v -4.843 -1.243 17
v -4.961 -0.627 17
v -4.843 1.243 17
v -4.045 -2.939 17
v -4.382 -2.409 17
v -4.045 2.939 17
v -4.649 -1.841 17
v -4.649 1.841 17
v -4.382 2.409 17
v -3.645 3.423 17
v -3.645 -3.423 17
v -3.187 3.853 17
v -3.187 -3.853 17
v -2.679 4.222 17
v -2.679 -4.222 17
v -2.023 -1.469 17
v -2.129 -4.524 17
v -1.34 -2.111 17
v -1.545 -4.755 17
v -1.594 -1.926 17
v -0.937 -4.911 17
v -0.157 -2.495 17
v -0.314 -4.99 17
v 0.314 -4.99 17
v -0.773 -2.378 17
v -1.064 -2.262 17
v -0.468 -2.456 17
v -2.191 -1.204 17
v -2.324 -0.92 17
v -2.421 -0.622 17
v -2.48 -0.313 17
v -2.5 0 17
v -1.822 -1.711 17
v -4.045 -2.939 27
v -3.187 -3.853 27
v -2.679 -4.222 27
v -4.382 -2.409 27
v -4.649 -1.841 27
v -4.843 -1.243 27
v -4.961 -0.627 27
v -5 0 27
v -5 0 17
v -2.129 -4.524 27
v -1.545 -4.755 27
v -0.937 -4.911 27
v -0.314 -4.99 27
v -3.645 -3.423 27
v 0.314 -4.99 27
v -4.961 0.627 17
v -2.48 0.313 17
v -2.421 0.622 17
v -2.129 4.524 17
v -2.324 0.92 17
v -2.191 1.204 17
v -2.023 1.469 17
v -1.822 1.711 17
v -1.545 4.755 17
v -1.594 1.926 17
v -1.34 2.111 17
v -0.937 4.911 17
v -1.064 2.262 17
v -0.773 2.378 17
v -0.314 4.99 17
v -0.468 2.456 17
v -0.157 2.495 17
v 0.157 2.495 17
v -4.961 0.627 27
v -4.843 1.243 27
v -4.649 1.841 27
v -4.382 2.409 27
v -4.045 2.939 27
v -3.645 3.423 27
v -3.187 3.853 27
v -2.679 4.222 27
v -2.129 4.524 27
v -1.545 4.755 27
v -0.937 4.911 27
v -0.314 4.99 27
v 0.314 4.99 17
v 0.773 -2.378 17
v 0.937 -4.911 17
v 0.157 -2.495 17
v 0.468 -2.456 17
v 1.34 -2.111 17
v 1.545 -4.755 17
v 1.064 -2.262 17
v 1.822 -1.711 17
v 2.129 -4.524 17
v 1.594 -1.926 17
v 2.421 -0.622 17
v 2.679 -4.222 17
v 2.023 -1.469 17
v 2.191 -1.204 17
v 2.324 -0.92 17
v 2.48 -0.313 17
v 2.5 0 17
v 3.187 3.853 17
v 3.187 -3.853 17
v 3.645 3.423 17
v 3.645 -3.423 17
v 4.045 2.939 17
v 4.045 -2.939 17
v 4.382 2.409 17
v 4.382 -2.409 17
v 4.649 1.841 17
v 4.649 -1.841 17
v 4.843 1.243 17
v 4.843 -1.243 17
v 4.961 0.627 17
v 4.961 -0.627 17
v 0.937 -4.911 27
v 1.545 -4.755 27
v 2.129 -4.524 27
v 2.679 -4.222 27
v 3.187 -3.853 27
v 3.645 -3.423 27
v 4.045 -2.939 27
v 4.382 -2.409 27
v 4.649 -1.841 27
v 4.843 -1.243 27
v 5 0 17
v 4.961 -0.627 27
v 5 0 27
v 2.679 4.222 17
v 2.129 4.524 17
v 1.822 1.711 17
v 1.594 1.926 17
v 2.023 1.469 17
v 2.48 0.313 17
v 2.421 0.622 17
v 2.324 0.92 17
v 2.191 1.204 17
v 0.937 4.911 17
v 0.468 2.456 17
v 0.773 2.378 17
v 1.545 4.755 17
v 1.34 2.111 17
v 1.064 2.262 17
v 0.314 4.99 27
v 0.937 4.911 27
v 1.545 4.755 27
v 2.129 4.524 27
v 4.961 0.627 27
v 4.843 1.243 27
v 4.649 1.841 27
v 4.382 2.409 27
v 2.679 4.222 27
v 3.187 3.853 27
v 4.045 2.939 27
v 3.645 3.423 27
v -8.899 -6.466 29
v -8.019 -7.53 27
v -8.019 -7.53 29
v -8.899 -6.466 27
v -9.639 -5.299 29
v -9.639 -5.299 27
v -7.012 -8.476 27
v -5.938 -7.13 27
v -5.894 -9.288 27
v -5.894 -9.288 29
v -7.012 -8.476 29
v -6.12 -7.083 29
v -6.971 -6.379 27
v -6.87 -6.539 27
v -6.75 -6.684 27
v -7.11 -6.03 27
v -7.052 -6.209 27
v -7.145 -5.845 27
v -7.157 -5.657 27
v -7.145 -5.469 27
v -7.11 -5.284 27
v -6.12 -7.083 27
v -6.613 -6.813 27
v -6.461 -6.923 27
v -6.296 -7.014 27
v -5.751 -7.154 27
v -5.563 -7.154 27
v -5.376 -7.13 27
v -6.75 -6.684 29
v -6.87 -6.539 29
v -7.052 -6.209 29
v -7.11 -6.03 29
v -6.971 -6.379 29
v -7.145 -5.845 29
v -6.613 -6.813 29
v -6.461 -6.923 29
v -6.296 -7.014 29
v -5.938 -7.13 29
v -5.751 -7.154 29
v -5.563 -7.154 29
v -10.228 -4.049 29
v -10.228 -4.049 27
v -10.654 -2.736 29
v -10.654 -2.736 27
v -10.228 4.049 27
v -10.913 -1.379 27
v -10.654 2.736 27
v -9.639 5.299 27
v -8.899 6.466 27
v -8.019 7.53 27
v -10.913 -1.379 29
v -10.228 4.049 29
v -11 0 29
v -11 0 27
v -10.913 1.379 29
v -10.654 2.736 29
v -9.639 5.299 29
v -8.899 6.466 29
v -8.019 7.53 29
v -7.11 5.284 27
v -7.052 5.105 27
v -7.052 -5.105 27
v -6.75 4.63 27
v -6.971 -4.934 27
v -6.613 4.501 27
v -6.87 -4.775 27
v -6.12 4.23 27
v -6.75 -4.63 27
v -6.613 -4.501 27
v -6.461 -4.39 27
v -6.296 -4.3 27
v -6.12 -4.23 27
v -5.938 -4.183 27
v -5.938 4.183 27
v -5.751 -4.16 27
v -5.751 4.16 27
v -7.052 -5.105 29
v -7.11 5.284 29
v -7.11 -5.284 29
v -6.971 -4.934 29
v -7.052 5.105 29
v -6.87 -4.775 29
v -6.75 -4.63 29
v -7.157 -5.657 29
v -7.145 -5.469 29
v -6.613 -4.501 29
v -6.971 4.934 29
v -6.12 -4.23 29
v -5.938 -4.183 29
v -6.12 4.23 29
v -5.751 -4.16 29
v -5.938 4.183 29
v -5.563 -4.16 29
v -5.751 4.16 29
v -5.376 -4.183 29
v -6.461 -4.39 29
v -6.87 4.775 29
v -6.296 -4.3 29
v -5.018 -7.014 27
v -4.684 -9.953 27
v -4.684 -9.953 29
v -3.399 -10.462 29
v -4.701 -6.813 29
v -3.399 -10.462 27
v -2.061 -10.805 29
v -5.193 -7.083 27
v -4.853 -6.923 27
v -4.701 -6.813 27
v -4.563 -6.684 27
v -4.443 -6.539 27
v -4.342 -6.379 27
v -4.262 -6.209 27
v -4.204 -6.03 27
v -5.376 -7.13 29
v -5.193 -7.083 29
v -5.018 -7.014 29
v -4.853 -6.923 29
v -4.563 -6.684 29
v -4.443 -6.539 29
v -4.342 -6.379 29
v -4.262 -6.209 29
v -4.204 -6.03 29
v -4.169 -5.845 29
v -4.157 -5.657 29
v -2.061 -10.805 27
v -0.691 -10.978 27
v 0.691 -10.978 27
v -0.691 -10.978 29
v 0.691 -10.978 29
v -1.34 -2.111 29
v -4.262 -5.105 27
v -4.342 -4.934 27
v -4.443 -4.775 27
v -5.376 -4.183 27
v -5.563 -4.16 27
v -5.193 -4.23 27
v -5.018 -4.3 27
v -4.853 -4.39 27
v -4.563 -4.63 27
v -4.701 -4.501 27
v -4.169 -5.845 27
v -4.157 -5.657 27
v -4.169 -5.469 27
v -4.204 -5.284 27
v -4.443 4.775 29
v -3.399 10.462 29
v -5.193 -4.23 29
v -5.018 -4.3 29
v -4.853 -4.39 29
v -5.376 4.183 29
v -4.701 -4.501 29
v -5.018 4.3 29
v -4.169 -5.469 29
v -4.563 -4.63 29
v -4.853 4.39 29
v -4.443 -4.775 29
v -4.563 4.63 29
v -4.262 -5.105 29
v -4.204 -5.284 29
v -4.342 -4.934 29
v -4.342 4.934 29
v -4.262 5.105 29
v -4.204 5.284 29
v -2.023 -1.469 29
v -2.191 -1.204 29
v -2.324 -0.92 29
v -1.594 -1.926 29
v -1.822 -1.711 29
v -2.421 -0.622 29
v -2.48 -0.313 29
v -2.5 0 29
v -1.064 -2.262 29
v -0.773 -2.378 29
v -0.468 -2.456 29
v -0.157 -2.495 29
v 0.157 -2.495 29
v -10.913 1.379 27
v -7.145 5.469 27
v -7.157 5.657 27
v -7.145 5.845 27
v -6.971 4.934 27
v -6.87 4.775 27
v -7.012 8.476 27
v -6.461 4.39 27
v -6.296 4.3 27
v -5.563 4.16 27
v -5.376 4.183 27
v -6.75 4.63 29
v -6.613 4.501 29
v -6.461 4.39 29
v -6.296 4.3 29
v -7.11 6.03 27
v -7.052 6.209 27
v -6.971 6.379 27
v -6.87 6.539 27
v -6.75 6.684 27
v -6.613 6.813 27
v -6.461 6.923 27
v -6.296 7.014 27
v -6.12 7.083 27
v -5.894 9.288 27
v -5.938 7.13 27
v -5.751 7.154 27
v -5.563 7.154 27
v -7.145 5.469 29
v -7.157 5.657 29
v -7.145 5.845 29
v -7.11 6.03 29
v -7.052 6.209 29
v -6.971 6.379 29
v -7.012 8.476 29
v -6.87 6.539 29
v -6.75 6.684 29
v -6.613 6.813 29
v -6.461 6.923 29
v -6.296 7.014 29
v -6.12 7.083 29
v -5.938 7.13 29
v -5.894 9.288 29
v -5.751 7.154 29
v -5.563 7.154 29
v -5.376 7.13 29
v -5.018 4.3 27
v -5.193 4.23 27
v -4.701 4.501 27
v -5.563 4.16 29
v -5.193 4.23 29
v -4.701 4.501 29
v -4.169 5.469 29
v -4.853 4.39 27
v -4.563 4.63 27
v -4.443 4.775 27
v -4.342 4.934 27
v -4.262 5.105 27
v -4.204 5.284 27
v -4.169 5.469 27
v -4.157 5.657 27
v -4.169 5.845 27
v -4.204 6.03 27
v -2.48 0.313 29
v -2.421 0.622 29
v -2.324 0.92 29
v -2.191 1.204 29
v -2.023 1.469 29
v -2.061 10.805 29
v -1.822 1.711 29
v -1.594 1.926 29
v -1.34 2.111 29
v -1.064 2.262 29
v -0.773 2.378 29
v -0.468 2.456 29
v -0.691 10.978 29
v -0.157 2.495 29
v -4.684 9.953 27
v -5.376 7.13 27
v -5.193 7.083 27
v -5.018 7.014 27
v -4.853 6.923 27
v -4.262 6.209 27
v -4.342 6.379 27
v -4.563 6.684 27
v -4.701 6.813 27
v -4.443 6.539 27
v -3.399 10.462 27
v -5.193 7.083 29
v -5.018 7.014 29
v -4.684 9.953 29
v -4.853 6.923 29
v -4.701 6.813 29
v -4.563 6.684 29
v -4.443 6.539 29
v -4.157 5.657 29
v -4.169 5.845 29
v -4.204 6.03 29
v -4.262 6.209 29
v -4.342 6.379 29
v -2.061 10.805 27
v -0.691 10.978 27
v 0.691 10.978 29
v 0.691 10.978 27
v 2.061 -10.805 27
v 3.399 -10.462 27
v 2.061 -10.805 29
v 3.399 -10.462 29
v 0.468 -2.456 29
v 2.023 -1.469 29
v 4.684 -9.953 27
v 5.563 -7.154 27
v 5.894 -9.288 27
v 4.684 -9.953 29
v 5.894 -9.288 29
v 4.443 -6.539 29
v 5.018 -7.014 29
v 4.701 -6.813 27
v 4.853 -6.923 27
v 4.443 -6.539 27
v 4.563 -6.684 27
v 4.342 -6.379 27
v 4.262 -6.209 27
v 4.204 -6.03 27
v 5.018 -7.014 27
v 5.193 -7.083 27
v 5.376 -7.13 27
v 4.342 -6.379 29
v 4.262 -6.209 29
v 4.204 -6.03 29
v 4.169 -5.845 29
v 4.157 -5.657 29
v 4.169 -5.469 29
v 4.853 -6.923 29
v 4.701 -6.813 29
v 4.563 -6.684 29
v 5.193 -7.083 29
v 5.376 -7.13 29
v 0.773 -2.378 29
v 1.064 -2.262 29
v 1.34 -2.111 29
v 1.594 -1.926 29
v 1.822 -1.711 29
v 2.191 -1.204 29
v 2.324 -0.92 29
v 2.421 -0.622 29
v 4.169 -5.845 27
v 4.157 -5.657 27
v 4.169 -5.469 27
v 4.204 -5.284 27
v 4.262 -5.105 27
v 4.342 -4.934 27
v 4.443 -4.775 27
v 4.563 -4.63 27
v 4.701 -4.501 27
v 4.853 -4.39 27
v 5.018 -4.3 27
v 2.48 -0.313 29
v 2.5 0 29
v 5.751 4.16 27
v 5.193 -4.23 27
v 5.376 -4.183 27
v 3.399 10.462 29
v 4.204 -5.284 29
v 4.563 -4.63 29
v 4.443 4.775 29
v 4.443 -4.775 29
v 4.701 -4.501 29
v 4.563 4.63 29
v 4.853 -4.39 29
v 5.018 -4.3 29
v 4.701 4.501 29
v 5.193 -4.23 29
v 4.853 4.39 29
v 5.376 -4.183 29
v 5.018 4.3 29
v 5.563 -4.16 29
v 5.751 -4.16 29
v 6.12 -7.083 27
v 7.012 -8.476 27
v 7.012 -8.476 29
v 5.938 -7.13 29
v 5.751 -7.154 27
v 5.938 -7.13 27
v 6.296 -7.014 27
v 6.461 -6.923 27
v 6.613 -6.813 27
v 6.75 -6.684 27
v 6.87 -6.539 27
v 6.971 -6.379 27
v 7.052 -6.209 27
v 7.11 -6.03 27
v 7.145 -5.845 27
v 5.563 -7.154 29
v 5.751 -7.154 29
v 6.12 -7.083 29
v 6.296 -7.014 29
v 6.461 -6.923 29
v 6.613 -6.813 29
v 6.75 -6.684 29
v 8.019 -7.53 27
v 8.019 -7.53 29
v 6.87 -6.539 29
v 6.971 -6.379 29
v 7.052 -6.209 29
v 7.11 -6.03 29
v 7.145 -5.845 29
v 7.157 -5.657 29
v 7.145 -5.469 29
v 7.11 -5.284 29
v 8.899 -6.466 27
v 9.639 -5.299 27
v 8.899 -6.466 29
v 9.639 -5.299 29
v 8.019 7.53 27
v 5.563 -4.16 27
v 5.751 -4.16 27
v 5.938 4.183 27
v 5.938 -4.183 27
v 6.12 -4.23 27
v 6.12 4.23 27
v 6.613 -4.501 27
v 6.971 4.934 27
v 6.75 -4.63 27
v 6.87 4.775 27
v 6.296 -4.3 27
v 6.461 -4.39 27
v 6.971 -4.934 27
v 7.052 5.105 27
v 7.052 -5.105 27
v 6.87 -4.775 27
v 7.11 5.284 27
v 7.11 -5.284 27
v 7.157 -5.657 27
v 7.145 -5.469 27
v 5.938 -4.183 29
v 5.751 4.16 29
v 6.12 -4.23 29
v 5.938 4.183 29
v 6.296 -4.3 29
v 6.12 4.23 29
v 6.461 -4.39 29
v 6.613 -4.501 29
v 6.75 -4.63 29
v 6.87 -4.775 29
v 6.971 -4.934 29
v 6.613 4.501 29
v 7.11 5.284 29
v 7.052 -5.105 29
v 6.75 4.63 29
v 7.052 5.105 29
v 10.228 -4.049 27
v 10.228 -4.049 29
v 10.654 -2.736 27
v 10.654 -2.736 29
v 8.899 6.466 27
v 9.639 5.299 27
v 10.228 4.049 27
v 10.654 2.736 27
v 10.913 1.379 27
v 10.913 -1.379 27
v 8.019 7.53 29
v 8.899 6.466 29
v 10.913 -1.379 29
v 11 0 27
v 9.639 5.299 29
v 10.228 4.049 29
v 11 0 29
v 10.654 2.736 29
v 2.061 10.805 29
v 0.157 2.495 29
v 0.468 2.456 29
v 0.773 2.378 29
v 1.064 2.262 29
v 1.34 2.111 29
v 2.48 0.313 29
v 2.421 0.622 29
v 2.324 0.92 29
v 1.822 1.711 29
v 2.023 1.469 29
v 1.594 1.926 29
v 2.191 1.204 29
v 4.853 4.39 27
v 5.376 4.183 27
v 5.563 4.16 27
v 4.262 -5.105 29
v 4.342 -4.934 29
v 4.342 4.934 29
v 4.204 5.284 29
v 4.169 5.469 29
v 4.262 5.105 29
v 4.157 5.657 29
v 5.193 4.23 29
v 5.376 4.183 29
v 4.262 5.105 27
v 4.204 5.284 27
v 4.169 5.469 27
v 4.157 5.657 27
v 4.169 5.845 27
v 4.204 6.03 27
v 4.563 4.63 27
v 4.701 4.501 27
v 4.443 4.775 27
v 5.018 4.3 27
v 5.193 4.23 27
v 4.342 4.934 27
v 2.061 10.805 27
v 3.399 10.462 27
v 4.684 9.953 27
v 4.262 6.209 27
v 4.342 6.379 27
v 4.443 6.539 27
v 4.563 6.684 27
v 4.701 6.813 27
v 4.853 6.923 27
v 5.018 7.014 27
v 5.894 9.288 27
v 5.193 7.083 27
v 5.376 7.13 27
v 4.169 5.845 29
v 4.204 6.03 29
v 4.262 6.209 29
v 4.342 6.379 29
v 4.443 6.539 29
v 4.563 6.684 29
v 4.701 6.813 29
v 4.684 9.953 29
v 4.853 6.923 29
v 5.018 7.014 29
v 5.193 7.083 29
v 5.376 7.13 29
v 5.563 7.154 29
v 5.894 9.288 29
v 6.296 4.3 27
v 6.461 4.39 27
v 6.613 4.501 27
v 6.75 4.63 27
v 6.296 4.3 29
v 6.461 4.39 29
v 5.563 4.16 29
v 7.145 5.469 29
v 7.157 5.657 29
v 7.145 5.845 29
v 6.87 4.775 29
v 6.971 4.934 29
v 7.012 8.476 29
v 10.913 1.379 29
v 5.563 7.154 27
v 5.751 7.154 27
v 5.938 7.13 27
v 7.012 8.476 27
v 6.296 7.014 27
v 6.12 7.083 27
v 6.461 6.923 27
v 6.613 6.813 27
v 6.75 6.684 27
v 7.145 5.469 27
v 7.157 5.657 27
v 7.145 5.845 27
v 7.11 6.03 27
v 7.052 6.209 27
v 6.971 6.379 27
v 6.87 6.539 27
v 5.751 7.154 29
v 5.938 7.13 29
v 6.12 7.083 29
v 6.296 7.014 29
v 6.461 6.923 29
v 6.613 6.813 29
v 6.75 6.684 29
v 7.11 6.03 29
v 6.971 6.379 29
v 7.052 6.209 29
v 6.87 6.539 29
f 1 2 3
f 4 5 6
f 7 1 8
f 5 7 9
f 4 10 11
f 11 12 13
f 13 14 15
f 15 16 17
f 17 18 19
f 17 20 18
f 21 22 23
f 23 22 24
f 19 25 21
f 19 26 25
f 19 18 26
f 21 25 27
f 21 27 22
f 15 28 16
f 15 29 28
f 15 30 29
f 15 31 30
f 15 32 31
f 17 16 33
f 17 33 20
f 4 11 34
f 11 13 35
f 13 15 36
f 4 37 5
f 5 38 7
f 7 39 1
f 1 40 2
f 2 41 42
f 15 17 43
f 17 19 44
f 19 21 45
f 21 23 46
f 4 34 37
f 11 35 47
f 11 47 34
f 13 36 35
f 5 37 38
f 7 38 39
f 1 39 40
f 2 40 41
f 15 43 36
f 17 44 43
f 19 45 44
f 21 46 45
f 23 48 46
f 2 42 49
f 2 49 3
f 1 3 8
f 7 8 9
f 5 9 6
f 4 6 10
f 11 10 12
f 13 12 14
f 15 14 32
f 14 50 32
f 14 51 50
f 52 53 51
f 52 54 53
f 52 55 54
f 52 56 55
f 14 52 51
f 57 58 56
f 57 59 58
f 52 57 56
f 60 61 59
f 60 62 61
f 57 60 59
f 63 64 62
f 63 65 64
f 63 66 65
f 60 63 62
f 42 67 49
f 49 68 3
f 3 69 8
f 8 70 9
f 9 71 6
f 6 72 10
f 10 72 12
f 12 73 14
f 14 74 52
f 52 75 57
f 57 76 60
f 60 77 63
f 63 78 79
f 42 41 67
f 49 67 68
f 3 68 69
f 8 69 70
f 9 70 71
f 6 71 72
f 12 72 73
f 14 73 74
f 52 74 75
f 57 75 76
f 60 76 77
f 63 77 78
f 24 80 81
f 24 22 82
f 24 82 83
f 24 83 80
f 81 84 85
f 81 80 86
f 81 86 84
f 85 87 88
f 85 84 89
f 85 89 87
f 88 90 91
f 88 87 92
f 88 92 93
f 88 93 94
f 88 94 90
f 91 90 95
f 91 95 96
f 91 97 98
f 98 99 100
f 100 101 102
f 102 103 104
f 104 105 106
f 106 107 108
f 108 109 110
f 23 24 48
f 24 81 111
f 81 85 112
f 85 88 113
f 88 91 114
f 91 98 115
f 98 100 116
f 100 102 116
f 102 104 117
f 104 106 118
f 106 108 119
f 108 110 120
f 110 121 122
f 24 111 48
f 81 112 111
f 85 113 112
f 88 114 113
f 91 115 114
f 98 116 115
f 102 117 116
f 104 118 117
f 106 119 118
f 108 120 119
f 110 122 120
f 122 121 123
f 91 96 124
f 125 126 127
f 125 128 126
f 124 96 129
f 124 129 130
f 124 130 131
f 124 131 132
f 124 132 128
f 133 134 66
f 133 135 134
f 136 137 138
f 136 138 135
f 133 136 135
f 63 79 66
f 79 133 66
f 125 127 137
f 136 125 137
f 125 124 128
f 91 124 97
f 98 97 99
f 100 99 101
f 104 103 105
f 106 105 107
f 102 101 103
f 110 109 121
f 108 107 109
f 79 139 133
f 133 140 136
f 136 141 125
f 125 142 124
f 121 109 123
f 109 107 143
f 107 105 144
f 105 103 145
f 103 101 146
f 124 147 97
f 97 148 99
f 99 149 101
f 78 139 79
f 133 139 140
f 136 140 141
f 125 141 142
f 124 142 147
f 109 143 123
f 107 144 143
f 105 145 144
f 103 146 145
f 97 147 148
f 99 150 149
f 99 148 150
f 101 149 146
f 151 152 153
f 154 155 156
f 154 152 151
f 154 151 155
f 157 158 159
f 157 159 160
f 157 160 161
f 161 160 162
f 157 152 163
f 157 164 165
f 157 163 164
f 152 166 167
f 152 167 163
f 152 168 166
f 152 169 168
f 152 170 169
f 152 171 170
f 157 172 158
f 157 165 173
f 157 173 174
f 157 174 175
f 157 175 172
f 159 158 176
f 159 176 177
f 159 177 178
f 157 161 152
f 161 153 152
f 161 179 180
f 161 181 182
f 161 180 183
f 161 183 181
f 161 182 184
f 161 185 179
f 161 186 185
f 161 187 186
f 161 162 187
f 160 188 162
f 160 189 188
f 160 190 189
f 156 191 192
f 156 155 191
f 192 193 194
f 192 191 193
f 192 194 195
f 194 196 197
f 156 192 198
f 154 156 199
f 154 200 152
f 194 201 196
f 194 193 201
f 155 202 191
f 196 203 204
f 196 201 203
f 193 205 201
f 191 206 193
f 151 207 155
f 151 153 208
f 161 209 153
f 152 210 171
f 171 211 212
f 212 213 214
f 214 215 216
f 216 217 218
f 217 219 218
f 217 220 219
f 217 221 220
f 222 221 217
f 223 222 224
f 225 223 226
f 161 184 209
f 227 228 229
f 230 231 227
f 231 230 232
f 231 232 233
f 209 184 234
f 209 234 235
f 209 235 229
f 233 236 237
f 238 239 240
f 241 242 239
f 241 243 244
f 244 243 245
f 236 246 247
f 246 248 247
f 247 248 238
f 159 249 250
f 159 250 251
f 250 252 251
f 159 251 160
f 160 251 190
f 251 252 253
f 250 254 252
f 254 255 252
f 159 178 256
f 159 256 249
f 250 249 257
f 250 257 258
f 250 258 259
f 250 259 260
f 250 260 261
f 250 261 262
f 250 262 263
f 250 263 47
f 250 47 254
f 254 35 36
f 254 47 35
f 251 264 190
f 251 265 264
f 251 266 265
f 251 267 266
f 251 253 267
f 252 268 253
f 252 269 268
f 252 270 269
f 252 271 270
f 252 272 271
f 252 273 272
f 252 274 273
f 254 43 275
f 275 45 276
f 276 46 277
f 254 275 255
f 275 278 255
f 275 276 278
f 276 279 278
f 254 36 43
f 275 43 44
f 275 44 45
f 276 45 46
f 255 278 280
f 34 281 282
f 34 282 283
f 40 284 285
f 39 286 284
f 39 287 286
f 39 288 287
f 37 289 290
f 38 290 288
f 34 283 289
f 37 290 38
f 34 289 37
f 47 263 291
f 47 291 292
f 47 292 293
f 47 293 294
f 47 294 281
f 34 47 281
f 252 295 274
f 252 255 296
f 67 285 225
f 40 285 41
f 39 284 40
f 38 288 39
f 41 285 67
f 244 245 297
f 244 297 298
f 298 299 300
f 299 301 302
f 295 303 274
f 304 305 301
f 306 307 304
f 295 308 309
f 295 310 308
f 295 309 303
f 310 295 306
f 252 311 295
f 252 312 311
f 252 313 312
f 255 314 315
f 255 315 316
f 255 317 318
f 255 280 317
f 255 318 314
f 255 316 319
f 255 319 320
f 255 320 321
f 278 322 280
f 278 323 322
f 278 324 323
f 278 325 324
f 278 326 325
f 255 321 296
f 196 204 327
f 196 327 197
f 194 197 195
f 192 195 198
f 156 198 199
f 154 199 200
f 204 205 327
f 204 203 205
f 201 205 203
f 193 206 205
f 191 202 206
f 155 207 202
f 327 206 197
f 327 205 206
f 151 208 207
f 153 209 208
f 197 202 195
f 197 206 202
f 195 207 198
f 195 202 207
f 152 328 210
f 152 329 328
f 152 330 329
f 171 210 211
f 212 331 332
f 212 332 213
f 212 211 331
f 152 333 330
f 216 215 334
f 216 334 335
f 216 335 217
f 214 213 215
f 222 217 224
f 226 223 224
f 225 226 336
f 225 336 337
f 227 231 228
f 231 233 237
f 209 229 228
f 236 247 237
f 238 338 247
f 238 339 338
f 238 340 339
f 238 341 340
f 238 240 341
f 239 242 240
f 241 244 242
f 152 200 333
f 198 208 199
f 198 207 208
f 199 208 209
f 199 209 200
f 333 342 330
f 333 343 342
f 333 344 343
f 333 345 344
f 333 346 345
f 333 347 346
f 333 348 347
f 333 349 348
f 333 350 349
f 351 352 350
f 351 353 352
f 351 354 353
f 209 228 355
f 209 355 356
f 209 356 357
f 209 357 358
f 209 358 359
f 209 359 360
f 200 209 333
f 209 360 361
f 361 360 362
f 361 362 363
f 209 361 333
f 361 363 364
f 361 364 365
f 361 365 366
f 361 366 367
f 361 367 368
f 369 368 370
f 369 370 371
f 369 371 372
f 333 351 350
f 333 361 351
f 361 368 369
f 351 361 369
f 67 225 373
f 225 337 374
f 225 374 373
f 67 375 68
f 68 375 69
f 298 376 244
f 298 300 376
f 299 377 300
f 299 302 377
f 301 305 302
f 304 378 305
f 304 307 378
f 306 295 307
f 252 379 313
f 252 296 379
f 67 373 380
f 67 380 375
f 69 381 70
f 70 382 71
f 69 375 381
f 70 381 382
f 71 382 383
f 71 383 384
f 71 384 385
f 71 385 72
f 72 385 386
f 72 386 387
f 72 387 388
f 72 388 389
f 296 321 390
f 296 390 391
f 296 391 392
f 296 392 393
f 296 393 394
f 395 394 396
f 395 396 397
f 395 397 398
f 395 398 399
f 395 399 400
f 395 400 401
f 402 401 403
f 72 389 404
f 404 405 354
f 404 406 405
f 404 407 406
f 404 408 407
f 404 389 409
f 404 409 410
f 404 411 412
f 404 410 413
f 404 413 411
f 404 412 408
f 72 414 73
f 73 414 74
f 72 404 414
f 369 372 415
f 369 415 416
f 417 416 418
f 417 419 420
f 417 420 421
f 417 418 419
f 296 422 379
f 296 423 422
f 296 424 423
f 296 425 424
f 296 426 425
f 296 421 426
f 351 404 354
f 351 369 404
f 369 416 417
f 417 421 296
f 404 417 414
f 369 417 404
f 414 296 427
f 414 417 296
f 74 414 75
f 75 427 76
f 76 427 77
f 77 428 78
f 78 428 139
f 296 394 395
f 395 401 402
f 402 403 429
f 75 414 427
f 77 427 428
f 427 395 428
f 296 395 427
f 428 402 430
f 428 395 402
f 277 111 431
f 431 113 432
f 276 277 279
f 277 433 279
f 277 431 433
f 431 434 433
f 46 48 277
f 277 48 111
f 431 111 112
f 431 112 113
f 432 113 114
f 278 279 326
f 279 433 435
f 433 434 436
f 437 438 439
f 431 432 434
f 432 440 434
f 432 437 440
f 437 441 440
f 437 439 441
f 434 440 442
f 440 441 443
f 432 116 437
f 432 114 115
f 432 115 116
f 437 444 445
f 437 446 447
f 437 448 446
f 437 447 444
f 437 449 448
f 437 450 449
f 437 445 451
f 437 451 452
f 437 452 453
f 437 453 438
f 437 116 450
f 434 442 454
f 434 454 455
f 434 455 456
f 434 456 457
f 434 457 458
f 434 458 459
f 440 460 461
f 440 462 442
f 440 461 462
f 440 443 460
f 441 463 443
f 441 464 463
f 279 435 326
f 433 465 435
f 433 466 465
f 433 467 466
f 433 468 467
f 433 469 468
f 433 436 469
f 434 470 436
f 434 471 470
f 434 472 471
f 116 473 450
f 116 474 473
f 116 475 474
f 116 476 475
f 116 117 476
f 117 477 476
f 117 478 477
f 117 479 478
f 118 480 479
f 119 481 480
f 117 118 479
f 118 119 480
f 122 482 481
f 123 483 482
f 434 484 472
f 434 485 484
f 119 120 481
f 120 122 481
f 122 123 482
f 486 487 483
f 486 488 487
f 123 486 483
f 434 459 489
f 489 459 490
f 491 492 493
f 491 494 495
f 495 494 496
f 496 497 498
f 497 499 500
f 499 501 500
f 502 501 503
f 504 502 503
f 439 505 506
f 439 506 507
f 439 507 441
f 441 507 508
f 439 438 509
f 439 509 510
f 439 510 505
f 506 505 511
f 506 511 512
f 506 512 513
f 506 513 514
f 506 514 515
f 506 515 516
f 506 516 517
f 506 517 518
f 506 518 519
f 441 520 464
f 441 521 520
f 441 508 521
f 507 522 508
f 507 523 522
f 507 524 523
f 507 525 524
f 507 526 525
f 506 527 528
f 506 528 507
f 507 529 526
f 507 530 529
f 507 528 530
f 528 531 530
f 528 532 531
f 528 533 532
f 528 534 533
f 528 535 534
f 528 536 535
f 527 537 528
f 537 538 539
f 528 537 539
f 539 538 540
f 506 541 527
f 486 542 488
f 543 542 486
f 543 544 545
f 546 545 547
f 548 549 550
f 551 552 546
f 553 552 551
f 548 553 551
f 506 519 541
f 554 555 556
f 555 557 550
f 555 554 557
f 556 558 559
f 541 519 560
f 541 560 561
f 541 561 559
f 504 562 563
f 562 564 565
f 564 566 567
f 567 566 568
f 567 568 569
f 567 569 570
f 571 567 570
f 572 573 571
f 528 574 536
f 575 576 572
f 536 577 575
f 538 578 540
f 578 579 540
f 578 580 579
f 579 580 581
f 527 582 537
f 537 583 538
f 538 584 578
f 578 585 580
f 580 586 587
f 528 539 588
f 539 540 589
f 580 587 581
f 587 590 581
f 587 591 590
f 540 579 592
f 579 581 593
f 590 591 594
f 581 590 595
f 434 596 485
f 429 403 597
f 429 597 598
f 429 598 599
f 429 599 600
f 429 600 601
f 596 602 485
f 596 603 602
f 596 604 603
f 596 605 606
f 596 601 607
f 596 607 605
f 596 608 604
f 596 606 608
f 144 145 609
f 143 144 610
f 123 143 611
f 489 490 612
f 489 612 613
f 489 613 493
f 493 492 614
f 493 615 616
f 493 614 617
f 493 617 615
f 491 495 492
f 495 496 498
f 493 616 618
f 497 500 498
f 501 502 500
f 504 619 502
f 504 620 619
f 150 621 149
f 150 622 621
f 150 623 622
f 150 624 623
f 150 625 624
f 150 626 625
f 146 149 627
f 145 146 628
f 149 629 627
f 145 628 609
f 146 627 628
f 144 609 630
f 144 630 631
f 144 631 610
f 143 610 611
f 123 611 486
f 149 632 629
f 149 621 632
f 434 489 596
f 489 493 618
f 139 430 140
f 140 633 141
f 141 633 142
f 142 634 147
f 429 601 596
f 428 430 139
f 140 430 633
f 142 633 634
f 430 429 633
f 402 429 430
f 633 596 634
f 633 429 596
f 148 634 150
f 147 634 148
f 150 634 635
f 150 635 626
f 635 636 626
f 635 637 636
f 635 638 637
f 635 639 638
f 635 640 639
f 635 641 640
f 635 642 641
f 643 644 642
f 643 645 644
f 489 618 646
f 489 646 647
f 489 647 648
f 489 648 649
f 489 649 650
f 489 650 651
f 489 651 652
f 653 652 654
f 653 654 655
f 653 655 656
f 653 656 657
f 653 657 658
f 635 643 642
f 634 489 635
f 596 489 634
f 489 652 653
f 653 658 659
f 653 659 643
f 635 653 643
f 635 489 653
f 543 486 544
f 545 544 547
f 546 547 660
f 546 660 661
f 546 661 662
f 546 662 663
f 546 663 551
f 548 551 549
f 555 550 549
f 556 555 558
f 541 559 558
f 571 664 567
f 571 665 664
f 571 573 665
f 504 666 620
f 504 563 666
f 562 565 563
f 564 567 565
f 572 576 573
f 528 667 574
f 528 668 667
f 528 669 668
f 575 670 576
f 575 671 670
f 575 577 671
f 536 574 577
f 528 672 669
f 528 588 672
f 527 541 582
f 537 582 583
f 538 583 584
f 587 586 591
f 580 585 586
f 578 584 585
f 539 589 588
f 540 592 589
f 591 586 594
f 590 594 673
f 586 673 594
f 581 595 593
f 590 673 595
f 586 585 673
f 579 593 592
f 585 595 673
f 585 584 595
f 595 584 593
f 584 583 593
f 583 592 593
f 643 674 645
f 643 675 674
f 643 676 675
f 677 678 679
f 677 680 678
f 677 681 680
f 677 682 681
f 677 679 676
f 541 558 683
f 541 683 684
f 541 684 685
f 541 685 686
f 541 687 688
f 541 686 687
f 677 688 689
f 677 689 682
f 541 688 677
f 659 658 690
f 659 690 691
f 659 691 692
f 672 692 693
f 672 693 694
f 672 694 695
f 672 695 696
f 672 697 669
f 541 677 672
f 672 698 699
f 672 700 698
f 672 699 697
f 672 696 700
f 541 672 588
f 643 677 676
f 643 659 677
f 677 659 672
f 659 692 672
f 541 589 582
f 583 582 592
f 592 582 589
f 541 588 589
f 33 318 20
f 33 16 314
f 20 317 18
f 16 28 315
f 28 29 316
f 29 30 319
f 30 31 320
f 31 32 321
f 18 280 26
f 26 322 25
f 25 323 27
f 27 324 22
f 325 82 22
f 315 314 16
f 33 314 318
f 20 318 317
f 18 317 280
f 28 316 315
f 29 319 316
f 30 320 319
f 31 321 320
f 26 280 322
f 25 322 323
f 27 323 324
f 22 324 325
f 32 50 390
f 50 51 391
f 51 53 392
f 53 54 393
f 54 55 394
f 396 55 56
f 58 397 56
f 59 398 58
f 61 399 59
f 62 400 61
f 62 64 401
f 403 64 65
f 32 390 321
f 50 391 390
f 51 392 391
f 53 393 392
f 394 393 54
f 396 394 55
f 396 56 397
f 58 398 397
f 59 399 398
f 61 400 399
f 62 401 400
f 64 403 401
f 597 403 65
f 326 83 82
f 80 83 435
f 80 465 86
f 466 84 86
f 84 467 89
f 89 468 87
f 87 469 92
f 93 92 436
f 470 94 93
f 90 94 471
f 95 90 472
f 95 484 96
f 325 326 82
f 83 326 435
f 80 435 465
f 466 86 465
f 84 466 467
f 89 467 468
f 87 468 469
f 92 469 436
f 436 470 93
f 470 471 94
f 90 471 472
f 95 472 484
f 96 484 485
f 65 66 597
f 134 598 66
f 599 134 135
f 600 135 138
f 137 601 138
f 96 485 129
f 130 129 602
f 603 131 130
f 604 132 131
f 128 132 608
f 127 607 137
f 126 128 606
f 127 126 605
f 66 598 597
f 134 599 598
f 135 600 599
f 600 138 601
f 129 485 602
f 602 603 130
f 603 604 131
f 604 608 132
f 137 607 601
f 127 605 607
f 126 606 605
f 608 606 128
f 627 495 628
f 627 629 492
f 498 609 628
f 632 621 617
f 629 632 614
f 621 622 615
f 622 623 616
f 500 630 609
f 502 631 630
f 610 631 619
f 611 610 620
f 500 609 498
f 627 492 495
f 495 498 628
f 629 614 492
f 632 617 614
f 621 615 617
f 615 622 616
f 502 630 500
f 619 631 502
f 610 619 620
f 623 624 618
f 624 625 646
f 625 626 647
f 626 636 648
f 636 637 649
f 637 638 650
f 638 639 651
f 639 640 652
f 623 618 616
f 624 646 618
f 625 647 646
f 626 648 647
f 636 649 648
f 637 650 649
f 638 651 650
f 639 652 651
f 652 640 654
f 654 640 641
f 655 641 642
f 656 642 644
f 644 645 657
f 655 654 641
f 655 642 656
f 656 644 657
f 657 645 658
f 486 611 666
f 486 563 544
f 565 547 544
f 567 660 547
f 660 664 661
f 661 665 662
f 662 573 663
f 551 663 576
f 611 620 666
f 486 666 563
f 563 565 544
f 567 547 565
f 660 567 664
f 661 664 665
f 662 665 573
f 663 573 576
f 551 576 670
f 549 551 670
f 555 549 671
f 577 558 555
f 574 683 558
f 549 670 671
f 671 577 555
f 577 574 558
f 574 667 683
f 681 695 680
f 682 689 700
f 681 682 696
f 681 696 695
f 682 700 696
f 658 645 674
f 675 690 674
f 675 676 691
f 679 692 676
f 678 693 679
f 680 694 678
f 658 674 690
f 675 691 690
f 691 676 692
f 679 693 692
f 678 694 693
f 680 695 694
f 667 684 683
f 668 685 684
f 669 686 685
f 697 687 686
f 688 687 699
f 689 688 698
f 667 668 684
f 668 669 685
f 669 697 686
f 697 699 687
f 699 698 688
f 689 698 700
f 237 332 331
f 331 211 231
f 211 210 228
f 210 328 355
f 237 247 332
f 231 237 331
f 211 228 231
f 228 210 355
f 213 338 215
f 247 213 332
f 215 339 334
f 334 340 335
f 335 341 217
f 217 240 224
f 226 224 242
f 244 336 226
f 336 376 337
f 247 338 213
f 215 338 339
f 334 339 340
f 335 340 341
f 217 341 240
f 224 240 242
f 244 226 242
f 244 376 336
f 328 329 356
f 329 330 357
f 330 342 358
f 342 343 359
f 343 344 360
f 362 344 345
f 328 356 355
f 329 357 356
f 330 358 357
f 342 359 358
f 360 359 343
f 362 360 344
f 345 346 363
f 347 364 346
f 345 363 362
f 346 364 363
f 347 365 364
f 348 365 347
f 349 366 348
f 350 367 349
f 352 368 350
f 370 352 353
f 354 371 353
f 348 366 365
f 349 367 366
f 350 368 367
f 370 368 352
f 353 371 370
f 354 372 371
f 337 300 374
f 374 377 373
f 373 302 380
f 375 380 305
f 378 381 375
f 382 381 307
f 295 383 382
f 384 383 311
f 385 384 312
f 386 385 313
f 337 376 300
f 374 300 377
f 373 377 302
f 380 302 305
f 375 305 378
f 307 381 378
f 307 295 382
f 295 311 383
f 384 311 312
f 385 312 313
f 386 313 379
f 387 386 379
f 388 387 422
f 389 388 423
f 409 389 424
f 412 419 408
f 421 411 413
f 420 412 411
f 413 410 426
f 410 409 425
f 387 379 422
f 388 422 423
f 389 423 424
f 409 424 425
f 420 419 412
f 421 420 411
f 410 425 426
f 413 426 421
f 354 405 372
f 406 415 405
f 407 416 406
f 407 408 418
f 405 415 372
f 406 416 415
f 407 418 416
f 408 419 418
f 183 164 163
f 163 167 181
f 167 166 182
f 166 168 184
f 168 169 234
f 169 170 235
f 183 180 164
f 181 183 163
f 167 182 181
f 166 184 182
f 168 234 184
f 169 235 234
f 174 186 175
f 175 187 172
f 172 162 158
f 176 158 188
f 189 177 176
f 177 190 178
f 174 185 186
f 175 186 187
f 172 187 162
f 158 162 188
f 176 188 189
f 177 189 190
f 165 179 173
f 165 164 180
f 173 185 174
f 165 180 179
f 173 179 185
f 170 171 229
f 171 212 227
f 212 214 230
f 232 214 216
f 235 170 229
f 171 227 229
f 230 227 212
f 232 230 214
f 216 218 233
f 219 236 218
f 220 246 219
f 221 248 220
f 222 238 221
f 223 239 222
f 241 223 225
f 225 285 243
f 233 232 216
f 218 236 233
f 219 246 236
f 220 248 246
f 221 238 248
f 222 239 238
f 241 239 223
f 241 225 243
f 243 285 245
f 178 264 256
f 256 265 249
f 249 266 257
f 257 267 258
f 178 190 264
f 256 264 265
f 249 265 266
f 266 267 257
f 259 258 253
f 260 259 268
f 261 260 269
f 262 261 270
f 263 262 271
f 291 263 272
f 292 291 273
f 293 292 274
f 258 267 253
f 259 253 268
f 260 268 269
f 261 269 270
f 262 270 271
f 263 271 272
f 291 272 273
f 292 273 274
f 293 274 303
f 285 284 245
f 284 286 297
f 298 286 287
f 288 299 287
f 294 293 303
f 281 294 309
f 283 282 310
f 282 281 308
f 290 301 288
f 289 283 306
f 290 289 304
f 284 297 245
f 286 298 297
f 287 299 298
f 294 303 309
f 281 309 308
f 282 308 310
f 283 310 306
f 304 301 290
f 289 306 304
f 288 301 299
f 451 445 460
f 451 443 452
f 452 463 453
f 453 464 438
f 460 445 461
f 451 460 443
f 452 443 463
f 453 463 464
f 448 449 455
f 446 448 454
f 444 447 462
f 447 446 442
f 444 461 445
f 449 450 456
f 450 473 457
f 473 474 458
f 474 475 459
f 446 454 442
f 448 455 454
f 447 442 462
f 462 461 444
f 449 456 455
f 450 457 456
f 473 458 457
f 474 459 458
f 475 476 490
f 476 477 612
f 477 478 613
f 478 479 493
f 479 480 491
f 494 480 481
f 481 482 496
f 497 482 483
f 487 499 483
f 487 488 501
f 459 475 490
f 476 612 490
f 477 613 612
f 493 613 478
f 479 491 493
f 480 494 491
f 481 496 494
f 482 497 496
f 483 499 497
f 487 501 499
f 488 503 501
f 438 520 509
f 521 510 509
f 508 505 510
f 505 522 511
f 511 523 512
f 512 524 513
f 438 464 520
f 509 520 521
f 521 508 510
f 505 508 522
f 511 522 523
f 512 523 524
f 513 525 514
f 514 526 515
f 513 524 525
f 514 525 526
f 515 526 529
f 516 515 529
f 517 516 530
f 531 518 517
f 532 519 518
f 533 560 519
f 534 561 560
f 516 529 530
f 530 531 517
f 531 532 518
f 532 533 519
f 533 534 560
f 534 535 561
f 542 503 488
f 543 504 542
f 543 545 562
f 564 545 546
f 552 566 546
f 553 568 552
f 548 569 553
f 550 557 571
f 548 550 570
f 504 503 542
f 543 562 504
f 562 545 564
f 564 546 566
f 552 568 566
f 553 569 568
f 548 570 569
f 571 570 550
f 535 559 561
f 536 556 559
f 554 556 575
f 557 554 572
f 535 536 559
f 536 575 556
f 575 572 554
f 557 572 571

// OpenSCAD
$fn = 50;

difference() {
	union() {
		translate(v = [0, 0, 17.0]) {
			cylinder(h = 10, r = 5.0);
		}
		translate(v = [0, 0, 27.0]) {
			cylinder(h = 2, r = 11.0);
		}
	}
	union() {
		translate(v = [0, 0, 16]) {
			cylinder(h = 14, r = 2.5);
		}
		translate(v = [5.656854249492381, 5.656854249492381, 26]) {
			cylinder(h = 4, r = 1.5);
		}
		translate(v = [-5.65685424949238, 5.656854249492381, 26]) {
			cylinder(h = 4, r = 1.5);
		}
		translate(v = [-5.6568542494923815, -5.65685424949238, 26]) {
			cylinder(h = 4, r = 1.5);
		}
		translate(v = [5.656854249492379, -5.6568542494923815, 26]) {
			cylinder(h = 4, r = 1.5);
		}
	}
}
